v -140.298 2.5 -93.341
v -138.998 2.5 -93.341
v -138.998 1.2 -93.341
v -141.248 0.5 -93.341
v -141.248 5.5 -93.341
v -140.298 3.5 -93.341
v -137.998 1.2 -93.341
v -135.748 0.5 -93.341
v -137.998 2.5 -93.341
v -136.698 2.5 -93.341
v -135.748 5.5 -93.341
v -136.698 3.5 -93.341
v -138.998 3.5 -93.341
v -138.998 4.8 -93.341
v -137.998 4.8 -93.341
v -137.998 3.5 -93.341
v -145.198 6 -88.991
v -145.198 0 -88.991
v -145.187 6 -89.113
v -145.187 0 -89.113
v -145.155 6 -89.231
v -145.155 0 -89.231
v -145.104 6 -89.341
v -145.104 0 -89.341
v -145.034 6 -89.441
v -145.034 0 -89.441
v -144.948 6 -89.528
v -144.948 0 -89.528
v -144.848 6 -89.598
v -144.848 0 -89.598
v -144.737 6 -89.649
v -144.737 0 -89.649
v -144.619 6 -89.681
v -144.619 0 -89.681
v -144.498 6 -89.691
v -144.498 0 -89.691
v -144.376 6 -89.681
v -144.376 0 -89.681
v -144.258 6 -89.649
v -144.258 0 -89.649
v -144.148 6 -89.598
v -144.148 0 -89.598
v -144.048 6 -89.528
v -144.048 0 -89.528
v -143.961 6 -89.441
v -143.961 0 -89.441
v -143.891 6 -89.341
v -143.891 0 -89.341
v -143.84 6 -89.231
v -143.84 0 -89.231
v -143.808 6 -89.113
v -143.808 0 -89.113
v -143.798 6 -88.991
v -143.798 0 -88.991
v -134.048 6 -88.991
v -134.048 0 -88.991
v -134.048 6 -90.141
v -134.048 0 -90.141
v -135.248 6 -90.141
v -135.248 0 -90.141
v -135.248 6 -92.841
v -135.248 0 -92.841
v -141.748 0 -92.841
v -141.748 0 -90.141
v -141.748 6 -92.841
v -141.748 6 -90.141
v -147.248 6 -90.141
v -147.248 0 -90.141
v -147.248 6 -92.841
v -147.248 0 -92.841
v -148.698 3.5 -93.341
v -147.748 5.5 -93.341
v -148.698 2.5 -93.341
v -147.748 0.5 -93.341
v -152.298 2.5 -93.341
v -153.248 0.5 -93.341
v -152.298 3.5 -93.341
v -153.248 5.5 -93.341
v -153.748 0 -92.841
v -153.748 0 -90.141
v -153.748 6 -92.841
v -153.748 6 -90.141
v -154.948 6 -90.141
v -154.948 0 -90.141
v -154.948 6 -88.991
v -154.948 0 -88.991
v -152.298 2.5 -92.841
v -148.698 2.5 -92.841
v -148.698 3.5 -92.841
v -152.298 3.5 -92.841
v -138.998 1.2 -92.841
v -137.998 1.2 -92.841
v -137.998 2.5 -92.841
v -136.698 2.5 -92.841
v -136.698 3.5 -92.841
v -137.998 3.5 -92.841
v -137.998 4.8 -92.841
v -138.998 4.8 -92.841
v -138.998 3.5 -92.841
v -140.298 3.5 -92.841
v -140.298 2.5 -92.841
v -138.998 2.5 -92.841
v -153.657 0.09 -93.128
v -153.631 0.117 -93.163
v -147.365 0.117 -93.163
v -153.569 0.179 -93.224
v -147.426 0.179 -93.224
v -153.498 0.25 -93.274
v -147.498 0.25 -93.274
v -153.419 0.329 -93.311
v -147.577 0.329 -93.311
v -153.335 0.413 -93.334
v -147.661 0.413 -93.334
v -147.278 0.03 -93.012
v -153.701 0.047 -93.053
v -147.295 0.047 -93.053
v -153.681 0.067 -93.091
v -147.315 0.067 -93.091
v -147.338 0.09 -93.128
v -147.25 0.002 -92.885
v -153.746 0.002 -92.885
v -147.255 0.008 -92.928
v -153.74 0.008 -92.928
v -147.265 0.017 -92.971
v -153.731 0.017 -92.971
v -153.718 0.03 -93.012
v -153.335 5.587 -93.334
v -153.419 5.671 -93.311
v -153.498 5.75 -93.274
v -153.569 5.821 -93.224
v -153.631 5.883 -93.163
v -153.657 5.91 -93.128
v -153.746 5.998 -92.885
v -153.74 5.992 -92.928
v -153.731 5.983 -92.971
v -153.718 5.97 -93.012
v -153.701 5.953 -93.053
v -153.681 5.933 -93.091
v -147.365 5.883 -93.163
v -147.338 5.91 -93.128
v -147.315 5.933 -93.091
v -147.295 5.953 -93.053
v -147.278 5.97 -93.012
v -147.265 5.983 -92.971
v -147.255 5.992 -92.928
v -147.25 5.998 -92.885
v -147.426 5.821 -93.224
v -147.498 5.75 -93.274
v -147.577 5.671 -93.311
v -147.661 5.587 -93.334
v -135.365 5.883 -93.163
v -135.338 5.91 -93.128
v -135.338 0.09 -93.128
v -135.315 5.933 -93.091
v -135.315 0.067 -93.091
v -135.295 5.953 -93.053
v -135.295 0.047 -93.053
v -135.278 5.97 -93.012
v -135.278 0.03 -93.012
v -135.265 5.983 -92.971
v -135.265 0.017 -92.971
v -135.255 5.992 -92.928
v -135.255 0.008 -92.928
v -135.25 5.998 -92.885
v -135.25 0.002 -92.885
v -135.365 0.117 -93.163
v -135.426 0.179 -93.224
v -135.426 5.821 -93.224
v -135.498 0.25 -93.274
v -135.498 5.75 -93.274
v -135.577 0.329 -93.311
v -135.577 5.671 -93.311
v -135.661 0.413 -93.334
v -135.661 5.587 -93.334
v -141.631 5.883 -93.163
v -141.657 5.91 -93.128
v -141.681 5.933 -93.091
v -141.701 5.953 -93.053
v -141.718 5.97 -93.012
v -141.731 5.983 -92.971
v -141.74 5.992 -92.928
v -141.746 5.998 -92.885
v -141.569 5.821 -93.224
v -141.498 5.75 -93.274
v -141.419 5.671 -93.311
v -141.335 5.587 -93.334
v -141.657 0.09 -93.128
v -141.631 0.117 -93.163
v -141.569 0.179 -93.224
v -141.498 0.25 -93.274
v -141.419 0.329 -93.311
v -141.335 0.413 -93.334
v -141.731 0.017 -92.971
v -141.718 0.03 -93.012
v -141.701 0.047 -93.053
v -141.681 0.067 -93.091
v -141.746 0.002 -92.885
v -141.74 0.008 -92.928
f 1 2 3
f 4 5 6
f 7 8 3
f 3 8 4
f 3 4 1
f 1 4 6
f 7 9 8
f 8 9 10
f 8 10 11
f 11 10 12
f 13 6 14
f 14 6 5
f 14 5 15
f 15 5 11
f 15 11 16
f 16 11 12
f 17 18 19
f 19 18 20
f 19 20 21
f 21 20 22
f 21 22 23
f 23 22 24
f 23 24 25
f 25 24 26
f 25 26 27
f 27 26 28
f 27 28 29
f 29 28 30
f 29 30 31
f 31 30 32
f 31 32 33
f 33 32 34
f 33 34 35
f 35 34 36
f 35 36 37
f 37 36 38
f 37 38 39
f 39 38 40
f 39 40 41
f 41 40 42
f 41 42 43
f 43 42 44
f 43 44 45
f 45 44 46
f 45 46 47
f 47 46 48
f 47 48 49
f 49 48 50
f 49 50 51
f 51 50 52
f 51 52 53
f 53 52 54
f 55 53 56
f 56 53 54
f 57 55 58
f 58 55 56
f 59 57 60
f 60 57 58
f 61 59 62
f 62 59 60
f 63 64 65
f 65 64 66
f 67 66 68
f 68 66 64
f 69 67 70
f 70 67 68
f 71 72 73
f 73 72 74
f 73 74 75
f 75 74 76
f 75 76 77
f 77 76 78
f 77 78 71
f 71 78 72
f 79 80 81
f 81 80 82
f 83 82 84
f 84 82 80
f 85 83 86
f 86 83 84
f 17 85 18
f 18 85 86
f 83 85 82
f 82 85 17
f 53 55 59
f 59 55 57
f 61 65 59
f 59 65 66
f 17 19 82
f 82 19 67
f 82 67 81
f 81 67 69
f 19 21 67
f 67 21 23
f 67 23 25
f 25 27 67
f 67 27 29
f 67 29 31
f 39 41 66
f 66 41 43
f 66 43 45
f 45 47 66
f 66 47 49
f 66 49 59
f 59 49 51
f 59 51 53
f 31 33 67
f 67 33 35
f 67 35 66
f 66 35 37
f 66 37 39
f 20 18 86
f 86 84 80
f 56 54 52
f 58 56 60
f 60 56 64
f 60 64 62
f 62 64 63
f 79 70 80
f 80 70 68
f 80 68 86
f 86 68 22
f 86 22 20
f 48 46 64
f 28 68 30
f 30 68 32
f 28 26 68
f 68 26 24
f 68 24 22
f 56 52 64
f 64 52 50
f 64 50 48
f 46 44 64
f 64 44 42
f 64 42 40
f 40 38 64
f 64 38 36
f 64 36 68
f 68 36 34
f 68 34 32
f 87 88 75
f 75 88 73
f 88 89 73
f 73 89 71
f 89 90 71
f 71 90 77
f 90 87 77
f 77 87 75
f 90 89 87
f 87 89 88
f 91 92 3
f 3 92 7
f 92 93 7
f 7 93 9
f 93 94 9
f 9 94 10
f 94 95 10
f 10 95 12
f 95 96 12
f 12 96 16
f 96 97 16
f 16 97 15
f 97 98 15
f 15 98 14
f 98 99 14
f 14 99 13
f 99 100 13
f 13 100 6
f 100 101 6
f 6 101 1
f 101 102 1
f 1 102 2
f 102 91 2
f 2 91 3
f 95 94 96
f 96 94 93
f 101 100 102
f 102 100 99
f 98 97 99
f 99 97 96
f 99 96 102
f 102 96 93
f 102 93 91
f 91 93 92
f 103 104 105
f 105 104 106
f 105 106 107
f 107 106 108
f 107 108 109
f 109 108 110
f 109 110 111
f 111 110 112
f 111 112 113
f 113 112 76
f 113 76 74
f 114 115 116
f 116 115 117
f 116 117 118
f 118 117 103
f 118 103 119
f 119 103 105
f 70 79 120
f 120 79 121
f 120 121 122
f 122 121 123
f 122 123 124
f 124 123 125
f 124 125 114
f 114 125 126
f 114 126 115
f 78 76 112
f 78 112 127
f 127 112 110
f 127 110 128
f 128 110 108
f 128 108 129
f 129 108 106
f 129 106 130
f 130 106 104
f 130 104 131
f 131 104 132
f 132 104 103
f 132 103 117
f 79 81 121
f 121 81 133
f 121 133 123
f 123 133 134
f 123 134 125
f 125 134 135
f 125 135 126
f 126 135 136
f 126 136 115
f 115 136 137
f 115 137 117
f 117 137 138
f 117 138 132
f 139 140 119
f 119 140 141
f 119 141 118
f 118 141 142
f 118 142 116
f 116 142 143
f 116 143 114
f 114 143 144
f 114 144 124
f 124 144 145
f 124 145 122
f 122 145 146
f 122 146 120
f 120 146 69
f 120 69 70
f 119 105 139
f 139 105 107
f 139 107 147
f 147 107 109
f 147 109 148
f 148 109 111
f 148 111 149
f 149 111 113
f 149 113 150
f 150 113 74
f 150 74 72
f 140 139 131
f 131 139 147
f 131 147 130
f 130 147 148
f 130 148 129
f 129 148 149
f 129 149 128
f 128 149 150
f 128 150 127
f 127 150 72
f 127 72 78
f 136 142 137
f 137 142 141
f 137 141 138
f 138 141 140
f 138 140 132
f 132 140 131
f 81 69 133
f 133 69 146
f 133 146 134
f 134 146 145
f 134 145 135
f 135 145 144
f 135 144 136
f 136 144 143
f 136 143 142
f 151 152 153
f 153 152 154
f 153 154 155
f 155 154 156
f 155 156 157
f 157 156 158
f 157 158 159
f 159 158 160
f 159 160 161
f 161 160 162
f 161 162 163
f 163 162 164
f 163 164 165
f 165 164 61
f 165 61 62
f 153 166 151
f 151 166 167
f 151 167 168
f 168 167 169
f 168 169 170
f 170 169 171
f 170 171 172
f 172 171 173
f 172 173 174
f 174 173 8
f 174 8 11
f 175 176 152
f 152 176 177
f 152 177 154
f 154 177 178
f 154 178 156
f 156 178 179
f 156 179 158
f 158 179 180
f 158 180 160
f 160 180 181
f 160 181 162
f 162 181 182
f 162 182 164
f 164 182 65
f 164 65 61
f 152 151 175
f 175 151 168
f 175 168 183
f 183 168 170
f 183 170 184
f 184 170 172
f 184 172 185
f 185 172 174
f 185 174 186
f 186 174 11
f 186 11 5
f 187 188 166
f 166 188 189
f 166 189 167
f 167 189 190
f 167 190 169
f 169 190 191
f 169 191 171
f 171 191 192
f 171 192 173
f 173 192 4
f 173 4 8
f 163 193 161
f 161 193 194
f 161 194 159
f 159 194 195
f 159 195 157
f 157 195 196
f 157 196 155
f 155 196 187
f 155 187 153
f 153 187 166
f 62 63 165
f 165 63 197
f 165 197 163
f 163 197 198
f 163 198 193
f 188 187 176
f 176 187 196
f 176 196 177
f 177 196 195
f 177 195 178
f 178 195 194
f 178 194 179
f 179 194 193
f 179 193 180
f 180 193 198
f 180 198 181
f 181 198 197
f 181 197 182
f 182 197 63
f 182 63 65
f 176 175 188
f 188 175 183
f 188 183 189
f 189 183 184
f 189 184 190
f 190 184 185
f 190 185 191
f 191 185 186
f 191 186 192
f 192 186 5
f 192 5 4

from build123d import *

# Parameters (mm, degrees)
EXTRUDE_1_DEPTH     = 6
SKETCH_2_W          = 1.8
SKETCH_2_H          = 0.5
SKETCH_2_W_2        = 1
SKETCH_2_H_2        = 1.3
SKETCH_2_W_3        = 1.3
SKETCH_2_W_4        = 0.5
CUT_EXTRUDE_1_DEPTH = 0.5
FILLET_1_R          = 0.5


with BuildPart() as part:
    # 草图1 → 凸台-拉伸1 (new body)
    with BuildSketch(Plane(origin=(0, 0, 0), x_dir=(1, 0, 0), z_dir=(0, 1, 0))):
        with BuildLine():
            Line((-153.747698535, 92.341311307), (-153.747698535, 90.141311307))
            Line((-153.747698535, 90.141311307), (-154.947698535, 90.141311307))
            Line((-154.947698535, 90.141311307), (-154.947698535, 89.341311307))
            Line((-154.947698535, 89.341311307), (-154.947698535, 88.991311307))
            Line((-154.947698535, 88.991311307), (-145.197698535, 88.991311307))
            ThreePointArc((-145.197698535, 88.991311307), (-144.497698535, 89.691311307), (-143.797698535, 88.991311307))
            Line((-143.797698535, 88.991311307), (-134.047698535, 88.991311307))
            Line((-134.047698535, 88.991311307), (-134.047698535, 89.341311307))
            Line((-134.047698535, 89.341311307), (-134.047698535, 90.141311307))
            Line((-134.047698535, 90.141311307), (-135.247698535, 90.141311307))
            Line((-135.247698535, 90.141311307), (-135.247698535, 93.341311307))
            Line((-135.247698535, 93.341311307), (-141.747698535, 93.341311307))
            Line((-141.747698535, 93.341311307), (-141.747698535, 90.141311307))
            Line((-141.747698535, 90.141311307), (-141.997698535, 90.141311307))
            Line((-141.997698535, 90.141311307), (-147.247698535, 90.141311307))
            Line((-147.247698535, 90.141311307), (-147.247698535, 93.341311307))
            Line((-147.247698535, 93.341311307), (-153.747698535, 93.341311307))
            Line((-153.747698535, 93.341311307), (-153.747698535, 92.341311307))
        make_face()
    extrude(amount=EXTRUDE_1_DEPTH)

    # 草图2 → 切除-拉伸1 (cut)
    with BuildSketch(Plane(origin=(0, 0, -93.341311307), x_dir=(-1, 0, 0), z_dir=(0, 0, -1))):
        Polygon((148.697698535, 3.5), (148.697698535, 3), (150.497698535, 3), (152.297698535, 3), (152.297698535, 3.5), align=None)
        with Locations((151.397698535, 2.75)):
            Rectangle(SKETCH_2_W, SKETCH_2_H)
        with Locations((149.597698535, 2.75)):
            Rectangle(SKETCH_2_W, SKETCH_2_H)
        with Locations((138.497698535, 4.15)):
            Rectangle(SKETCH_2_W_2, SKETCH_2_H_2)
        with Locations((137.347698535, 3.25)):
            Rectangle(SKETCH_2_W_3, SKETCH_2_H)
        Polygon((137.997698535, 3.5), (137.997698535, 3), (138.497698535, 3), (138.997698535, 3), (138.997698535, 3.5), align=None)
        with Locations((139.647698535, 3.25)):
            Rectangle(SKETCH_2_W_3, SKETCH_2_H)
        with Locations((139.647698535, 2.75)):
            Rectangle(SKETCH_2_W_3, SKETCH_2_H)
        with Locations((138.747698535, 2.75)):
            Rectangle(SKETCH_2_W_4, SKETCH_2_H)
        with Locations((138.247698535, 2.75)):
            Rectangle(SKETCH_2_W_4, SKETCH_2_H)
        with Locations((137.347698535, 2.75)):
            Rectangle(SKETCH_2_W_3, SKETCH_2_H)
        with Locations((138.247698535, 1.85)):
            Rectangle(SKETCH_2_W_4, SKETCH_2_H_2)
        with Locations((138.747698535, 1.85)):
            Rectangle(SKETCH_2_W_4, SKETCH_2_H_2)
    extrude(amount=-CUT_EXTRUDE_1_DEPTH, mode=Mode.SUBTRACT)

    # 圆角1
    fillet_1_edges = [part.edges().sort_by_distance(p)[0] for p in [
        (-150.497698535, 0, -93.341311307),
        (-138.497698535, 0, -93.341311307),
        (-138.497698535, 6, -93.341311307),
        (-153.747698535, 3, -93.341311307),
        (-147.247698535, 3, -93.341311307),
        (-141.747698535, 3, -93.341311307),
        (-135.247698535, 3, -93.341311307),
        (-150.497698535, 6, -93.341311307),
    ]]
    fillet(fillet_1_edges, radius=FILLET_1_R)


solid = part.part
